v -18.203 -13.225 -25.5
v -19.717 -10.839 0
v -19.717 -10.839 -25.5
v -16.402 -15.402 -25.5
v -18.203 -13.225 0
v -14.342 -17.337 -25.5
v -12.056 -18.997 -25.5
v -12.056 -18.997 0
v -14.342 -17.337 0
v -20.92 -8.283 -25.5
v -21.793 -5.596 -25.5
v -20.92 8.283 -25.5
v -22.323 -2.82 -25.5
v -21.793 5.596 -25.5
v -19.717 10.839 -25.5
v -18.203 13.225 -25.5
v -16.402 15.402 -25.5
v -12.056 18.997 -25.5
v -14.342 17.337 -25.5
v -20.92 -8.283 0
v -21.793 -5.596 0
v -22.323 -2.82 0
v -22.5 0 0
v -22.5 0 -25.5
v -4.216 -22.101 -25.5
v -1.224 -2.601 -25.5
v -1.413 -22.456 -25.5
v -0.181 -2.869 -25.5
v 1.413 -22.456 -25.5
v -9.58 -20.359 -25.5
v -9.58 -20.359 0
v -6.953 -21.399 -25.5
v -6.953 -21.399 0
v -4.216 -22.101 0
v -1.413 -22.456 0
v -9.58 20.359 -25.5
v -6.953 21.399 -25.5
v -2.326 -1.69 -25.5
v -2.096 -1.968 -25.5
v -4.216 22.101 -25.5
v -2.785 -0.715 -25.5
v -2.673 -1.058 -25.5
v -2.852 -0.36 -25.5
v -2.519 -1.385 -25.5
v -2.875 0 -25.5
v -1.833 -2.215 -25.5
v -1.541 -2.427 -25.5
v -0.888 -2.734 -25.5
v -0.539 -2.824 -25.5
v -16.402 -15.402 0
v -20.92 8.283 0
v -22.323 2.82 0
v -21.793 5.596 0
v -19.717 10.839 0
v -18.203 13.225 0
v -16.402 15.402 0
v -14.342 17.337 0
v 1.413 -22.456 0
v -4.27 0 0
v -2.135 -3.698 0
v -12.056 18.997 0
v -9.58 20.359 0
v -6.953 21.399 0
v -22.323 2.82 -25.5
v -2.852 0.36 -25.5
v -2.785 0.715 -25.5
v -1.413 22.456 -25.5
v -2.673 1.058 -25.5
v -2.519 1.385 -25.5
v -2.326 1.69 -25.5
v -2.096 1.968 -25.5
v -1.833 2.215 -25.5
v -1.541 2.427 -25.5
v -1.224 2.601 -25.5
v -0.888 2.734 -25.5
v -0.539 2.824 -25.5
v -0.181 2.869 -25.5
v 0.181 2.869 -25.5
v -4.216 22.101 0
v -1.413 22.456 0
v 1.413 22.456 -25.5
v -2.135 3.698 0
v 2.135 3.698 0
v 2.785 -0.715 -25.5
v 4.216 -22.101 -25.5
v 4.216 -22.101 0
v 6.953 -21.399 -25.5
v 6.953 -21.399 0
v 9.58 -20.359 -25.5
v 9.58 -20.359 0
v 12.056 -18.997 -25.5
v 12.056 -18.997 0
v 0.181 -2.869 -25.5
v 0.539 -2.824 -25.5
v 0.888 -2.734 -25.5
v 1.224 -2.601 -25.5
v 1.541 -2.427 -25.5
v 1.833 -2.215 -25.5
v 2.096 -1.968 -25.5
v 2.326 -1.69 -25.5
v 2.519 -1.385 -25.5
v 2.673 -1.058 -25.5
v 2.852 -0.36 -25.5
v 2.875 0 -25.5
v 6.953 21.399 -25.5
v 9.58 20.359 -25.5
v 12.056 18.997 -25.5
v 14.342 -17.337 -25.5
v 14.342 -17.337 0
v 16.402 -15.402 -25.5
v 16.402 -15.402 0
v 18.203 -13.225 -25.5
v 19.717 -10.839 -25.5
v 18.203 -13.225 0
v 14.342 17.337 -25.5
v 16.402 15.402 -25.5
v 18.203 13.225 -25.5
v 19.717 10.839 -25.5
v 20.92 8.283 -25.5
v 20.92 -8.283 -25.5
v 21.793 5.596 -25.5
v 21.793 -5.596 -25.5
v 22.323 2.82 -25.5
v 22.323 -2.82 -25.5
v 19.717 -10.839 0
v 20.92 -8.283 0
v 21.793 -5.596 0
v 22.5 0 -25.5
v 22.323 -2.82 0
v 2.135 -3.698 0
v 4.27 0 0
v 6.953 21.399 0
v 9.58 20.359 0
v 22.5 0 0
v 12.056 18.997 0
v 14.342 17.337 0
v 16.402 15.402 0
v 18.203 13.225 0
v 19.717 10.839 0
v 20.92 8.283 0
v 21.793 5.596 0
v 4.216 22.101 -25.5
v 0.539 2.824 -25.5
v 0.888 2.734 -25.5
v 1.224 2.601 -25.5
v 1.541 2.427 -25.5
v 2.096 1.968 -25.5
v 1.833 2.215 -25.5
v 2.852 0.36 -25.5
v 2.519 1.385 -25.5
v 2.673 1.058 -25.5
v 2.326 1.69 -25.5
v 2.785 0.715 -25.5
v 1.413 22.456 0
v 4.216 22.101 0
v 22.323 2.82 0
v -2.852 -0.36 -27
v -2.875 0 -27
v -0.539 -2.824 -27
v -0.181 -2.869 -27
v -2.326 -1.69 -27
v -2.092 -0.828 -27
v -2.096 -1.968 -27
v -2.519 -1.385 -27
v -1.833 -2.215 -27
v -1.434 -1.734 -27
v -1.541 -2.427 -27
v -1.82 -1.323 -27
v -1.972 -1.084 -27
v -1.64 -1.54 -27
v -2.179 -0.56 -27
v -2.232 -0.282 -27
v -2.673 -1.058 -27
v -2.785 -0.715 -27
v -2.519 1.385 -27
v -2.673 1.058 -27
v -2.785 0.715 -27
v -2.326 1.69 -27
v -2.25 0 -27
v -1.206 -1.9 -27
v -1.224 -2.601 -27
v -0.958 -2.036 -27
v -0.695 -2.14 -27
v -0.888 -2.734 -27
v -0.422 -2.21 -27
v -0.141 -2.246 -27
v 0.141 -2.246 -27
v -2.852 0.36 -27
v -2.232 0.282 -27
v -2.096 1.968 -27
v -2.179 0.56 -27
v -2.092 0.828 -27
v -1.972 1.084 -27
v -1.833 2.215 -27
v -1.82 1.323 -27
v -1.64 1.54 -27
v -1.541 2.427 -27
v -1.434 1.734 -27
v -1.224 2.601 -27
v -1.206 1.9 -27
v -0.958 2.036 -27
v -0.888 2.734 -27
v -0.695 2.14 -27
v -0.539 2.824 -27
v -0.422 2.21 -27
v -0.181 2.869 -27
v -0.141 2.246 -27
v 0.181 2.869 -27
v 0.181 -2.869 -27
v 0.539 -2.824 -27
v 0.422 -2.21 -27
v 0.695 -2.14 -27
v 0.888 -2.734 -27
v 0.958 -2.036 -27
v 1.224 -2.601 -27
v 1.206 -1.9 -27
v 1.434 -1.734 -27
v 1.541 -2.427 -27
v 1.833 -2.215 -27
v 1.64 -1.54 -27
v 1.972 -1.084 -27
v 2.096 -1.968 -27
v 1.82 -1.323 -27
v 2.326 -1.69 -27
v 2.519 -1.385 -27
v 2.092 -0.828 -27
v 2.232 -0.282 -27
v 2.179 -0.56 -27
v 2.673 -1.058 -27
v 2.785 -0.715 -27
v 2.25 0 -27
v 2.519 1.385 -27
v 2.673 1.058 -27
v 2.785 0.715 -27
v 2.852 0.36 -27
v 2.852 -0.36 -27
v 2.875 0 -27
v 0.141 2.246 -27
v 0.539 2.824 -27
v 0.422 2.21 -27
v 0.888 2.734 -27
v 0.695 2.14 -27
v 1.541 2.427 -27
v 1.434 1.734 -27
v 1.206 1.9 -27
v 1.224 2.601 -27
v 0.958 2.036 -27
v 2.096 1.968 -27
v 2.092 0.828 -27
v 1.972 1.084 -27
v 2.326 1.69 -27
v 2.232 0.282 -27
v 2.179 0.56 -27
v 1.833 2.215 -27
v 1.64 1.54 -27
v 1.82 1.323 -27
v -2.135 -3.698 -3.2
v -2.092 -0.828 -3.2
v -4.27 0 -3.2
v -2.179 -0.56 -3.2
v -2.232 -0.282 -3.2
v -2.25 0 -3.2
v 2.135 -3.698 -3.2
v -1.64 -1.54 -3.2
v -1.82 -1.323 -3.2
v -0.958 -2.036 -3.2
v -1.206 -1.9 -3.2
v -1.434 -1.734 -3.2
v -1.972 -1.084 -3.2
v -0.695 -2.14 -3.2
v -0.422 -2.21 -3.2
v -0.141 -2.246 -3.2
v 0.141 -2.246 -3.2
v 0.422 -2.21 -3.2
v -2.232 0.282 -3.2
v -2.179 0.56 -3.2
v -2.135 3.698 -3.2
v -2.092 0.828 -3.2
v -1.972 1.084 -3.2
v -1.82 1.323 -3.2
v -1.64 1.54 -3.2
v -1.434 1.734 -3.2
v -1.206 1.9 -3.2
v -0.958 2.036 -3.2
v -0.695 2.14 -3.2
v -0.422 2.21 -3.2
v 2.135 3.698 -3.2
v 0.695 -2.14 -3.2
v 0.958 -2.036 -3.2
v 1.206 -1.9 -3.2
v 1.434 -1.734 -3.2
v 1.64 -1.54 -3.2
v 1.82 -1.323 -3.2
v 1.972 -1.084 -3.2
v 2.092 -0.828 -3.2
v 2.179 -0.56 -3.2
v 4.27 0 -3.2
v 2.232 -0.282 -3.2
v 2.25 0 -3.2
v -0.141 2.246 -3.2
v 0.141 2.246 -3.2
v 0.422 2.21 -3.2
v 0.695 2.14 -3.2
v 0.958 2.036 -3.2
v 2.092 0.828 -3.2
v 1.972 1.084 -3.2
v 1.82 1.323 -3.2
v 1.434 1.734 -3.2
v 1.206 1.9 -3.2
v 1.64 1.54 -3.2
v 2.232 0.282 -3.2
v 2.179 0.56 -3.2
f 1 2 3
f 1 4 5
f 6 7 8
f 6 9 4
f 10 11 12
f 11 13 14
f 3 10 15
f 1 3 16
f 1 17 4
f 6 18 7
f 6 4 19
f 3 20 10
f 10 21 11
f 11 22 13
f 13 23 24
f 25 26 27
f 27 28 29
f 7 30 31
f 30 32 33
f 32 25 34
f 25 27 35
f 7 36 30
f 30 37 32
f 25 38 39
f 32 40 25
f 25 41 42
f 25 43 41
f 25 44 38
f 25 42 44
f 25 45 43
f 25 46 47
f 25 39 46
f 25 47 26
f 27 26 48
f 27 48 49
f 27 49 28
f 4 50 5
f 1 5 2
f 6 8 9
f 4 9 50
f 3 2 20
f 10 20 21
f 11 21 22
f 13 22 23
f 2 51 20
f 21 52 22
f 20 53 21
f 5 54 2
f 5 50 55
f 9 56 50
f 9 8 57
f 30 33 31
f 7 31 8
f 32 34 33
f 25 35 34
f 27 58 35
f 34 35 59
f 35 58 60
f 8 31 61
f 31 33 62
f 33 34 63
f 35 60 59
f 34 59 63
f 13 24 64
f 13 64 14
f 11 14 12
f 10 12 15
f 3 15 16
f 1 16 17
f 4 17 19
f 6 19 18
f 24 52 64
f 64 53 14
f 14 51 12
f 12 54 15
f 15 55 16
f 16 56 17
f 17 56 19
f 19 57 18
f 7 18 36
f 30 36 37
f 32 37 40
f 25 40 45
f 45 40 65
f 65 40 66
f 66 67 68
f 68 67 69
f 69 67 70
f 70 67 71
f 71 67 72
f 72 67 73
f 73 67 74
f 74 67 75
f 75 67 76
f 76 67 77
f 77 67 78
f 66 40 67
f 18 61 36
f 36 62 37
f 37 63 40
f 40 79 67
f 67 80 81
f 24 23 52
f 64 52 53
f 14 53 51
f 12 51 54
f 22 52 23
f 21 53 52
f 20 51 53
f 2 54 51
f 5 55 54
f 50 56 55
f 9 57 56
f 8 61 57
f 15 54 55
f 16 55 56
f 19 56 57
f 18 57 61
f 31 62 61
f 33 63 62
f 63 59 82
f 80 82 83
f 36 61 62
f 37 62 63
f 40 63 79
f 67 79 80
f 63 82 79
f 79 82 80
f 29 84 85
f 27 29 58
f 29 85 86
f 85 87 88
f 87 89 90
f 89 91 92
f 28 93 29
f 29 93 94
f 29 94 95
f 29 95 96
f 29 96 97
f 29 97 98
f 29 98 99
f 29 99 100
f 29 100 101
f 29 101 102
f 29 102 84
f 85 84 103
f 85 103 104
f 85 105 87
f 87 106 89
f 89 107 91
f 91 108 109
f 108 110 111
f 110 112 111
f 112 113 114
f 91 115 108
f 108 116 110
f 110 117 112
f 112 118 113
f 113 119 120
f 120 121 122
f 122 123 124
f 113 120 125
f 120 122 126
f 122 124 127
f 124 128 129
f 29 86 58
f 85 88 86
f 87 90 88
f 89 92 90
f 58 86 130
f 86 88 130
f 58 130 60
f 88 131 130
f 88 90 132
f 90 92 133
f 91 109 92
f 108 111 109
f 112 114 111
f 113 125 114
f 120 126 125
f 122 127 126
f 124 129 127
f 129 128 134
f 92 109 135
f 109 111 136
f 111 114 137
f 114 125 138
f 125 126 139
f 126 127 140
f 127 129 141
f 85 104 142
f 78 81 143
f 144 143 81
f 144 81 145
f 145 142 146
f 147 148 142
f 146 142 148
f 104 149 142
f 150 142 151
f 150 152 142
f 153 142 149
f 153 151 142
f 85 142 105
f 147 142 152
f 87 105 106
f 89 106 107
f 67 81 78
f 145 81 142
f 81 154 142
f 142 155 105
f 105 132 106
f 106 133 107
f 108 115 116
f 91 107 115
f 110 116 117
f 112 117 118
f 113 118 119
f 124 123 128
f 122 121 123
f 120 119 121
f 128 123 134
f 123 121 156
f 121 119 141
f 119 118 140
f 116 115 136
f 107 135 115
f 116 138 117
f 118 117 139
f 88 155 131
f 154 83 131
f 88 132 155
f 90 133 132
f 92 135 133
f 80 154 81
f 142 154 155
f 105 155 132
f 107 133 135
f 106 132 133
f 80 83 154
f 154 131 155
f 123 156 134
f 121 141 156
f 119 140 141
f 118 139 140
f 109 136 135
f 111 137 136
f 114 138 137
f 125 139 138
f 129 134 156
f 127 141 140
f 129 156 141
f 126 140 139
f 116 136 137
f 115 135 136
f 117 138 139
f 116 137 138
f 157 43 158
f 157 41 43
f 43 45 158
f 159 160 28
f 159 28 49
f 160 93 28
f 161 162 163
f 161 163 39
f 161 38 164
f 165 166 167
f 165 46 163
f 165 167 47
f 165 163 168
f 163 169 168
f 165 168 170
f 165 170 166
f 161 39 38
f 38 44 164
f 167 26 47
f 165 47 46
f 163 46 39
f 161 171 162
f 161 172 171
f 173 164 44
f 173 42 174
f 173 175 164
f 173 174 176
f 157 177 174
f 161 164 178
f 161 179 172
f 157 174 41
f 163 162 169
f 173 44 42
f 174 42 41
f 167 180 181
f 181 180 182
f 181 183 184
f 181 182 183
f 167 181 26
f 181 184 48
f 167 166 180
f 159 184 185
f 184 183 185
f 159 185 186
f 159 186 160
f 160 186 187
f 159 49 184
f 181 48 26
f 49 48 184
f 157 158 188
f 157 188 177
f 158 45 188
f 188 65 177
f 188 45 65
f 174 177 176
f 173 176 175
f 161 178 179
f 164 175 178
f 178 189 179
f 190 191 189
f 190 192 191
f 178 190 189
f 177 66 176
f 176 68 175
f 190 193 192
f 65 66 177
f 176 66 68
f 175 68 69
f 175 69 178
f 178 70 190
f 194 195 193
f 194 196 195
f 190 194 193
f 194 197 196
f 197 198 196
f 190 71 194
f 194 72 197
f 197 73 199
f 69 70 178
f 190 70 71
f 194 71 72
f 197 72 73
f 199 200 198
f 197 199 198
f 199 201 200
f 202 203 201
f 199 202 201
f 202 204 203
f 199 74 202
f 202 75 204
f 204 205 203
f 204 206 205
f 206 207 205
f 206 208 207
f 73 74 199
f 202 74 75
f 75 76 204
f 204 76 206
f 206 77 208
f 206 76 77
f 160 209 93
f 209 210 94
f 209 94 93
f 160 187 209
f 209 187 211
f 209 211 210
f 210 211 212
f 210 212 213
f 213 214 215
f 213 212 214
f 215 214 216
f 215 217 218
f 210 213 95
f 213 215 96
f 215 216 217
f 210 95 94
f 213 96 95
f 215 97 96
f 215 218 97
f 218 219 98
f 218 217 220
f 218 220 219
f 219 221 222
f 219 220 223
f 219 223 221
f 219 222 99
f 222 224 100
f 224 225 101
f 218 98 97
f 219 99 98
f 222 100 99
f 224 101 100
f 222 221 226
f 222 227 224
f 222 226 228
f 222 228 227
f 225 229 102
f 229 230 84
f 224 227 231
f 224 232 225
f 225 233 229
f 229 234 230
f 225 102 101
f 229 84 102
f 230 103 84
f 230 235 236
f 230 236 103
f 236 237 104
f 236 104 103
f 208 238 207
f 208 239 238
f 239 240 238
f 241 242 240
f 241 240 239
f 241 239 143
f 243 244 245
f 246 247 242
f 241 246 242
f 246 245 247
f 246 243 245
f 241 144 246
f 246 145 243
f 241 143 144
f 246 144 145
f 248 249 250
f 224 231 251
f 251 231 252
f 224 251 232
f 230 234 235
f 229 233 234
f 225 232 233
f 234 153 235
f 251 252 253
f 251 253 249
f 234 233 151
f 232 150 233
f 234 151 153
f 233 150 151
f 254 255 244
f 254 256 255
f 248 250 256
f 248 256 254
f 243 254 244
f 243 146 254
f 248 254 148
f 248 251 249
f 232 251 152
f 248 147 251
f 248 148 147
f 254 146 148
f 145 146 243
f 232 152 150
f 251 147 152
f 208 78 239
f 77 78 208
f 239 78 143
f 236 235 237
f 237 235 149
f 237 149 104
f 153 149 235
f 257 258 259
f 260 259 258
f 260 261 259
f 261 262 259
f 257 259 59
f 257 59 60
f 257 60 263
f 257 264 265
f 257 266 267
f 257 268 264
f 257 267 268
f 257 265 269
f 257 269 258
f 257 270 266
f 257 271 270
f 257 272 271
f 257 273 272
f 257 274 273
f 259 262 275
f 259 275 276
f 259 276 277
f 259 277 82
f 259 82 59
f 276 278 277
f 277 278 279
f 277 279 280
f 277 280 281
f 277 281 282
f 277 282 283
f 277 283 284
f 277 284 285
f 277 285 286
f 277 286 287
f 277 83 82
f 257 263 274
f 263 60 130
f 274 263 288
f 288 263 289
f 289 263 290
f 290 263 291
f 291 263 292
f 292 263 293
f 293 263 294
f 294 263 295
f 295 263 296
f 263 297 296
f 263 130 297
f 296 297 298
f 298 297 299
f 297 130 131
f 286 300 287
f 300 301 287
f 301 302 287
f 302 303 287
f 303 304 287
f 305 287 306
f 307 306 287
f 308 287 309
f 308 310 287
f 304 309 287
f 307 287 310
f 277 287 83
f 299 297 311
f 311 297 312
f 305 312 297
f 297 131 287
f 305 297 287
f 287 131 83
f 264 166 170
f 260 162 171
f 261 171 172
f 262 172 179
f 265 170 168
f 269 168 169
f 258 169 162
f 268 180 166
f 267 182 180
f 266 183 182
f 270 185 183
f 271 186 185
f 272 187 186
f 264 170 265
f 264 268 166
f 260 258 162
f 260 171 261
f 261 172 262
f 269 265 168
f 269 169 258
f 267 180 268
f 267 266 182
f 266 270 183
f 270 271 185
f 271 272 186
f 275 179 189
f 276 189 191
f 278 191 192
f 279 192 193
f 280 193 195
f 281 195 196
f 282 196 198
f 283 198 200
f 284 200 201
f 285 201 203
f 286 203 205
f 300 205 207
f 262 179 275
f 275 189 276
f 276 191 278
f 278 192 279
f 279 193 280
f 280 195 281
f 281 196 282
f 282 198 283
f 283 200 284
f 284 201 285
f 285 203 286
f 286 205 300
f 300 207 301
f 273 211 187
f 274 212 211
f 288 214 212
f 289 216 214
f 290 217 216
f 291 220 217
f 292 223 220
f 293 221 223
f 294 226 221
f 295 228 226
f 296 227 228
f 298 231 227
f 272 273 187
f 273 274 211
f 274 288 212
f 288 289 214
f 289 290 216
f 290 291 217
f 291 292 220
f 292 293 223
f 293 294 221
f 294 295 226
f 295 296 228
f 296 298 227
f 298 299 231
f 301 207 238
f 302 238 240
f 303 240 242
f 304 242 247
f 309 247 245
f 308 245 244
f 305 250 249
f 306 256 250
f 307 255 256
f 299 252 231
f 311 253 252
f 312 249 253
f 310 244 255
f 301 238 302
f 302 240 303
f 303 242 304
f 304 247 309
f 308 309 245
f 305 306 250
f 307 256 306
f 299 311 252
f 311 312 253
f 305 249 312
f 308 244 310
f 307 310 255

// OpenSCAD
$fn = 50;

difference() {
	union() {
		translate(v = [0, 0, -25.5]) {
			cylinder(h = 25.5, r = 22.5);
		}
		#translate(v = [0, 0, -27.0]) {
			cylinder(h = 27, r = 2.875);
		}
	}
	union() {
		translate(v = [0, 0, 0]) {
			rotate(a = [0, 0, 0]) {
				difference() {
					union() {
						translate(v = [0, 0, -3.2]) {
							linear_extrude(height = 3.2) {
								polygon(points = [[4.2698, 0.0], [2.1349000000000005, 3.697755269078796], [-2.134899999999999, 3.6977552690787965], [-4.2698, 5.228996902999369e-16], [-2.134900000000002, -3.6977552690787956], [2.1348999999999974, -3.697755269078798]]);
							}
						}
					}
					union();
				}
			}
		}
		#translate(v = [0, 0, -100.0]) {
			cylinder(h = 200, r = 2.25);
		}
	}
}
